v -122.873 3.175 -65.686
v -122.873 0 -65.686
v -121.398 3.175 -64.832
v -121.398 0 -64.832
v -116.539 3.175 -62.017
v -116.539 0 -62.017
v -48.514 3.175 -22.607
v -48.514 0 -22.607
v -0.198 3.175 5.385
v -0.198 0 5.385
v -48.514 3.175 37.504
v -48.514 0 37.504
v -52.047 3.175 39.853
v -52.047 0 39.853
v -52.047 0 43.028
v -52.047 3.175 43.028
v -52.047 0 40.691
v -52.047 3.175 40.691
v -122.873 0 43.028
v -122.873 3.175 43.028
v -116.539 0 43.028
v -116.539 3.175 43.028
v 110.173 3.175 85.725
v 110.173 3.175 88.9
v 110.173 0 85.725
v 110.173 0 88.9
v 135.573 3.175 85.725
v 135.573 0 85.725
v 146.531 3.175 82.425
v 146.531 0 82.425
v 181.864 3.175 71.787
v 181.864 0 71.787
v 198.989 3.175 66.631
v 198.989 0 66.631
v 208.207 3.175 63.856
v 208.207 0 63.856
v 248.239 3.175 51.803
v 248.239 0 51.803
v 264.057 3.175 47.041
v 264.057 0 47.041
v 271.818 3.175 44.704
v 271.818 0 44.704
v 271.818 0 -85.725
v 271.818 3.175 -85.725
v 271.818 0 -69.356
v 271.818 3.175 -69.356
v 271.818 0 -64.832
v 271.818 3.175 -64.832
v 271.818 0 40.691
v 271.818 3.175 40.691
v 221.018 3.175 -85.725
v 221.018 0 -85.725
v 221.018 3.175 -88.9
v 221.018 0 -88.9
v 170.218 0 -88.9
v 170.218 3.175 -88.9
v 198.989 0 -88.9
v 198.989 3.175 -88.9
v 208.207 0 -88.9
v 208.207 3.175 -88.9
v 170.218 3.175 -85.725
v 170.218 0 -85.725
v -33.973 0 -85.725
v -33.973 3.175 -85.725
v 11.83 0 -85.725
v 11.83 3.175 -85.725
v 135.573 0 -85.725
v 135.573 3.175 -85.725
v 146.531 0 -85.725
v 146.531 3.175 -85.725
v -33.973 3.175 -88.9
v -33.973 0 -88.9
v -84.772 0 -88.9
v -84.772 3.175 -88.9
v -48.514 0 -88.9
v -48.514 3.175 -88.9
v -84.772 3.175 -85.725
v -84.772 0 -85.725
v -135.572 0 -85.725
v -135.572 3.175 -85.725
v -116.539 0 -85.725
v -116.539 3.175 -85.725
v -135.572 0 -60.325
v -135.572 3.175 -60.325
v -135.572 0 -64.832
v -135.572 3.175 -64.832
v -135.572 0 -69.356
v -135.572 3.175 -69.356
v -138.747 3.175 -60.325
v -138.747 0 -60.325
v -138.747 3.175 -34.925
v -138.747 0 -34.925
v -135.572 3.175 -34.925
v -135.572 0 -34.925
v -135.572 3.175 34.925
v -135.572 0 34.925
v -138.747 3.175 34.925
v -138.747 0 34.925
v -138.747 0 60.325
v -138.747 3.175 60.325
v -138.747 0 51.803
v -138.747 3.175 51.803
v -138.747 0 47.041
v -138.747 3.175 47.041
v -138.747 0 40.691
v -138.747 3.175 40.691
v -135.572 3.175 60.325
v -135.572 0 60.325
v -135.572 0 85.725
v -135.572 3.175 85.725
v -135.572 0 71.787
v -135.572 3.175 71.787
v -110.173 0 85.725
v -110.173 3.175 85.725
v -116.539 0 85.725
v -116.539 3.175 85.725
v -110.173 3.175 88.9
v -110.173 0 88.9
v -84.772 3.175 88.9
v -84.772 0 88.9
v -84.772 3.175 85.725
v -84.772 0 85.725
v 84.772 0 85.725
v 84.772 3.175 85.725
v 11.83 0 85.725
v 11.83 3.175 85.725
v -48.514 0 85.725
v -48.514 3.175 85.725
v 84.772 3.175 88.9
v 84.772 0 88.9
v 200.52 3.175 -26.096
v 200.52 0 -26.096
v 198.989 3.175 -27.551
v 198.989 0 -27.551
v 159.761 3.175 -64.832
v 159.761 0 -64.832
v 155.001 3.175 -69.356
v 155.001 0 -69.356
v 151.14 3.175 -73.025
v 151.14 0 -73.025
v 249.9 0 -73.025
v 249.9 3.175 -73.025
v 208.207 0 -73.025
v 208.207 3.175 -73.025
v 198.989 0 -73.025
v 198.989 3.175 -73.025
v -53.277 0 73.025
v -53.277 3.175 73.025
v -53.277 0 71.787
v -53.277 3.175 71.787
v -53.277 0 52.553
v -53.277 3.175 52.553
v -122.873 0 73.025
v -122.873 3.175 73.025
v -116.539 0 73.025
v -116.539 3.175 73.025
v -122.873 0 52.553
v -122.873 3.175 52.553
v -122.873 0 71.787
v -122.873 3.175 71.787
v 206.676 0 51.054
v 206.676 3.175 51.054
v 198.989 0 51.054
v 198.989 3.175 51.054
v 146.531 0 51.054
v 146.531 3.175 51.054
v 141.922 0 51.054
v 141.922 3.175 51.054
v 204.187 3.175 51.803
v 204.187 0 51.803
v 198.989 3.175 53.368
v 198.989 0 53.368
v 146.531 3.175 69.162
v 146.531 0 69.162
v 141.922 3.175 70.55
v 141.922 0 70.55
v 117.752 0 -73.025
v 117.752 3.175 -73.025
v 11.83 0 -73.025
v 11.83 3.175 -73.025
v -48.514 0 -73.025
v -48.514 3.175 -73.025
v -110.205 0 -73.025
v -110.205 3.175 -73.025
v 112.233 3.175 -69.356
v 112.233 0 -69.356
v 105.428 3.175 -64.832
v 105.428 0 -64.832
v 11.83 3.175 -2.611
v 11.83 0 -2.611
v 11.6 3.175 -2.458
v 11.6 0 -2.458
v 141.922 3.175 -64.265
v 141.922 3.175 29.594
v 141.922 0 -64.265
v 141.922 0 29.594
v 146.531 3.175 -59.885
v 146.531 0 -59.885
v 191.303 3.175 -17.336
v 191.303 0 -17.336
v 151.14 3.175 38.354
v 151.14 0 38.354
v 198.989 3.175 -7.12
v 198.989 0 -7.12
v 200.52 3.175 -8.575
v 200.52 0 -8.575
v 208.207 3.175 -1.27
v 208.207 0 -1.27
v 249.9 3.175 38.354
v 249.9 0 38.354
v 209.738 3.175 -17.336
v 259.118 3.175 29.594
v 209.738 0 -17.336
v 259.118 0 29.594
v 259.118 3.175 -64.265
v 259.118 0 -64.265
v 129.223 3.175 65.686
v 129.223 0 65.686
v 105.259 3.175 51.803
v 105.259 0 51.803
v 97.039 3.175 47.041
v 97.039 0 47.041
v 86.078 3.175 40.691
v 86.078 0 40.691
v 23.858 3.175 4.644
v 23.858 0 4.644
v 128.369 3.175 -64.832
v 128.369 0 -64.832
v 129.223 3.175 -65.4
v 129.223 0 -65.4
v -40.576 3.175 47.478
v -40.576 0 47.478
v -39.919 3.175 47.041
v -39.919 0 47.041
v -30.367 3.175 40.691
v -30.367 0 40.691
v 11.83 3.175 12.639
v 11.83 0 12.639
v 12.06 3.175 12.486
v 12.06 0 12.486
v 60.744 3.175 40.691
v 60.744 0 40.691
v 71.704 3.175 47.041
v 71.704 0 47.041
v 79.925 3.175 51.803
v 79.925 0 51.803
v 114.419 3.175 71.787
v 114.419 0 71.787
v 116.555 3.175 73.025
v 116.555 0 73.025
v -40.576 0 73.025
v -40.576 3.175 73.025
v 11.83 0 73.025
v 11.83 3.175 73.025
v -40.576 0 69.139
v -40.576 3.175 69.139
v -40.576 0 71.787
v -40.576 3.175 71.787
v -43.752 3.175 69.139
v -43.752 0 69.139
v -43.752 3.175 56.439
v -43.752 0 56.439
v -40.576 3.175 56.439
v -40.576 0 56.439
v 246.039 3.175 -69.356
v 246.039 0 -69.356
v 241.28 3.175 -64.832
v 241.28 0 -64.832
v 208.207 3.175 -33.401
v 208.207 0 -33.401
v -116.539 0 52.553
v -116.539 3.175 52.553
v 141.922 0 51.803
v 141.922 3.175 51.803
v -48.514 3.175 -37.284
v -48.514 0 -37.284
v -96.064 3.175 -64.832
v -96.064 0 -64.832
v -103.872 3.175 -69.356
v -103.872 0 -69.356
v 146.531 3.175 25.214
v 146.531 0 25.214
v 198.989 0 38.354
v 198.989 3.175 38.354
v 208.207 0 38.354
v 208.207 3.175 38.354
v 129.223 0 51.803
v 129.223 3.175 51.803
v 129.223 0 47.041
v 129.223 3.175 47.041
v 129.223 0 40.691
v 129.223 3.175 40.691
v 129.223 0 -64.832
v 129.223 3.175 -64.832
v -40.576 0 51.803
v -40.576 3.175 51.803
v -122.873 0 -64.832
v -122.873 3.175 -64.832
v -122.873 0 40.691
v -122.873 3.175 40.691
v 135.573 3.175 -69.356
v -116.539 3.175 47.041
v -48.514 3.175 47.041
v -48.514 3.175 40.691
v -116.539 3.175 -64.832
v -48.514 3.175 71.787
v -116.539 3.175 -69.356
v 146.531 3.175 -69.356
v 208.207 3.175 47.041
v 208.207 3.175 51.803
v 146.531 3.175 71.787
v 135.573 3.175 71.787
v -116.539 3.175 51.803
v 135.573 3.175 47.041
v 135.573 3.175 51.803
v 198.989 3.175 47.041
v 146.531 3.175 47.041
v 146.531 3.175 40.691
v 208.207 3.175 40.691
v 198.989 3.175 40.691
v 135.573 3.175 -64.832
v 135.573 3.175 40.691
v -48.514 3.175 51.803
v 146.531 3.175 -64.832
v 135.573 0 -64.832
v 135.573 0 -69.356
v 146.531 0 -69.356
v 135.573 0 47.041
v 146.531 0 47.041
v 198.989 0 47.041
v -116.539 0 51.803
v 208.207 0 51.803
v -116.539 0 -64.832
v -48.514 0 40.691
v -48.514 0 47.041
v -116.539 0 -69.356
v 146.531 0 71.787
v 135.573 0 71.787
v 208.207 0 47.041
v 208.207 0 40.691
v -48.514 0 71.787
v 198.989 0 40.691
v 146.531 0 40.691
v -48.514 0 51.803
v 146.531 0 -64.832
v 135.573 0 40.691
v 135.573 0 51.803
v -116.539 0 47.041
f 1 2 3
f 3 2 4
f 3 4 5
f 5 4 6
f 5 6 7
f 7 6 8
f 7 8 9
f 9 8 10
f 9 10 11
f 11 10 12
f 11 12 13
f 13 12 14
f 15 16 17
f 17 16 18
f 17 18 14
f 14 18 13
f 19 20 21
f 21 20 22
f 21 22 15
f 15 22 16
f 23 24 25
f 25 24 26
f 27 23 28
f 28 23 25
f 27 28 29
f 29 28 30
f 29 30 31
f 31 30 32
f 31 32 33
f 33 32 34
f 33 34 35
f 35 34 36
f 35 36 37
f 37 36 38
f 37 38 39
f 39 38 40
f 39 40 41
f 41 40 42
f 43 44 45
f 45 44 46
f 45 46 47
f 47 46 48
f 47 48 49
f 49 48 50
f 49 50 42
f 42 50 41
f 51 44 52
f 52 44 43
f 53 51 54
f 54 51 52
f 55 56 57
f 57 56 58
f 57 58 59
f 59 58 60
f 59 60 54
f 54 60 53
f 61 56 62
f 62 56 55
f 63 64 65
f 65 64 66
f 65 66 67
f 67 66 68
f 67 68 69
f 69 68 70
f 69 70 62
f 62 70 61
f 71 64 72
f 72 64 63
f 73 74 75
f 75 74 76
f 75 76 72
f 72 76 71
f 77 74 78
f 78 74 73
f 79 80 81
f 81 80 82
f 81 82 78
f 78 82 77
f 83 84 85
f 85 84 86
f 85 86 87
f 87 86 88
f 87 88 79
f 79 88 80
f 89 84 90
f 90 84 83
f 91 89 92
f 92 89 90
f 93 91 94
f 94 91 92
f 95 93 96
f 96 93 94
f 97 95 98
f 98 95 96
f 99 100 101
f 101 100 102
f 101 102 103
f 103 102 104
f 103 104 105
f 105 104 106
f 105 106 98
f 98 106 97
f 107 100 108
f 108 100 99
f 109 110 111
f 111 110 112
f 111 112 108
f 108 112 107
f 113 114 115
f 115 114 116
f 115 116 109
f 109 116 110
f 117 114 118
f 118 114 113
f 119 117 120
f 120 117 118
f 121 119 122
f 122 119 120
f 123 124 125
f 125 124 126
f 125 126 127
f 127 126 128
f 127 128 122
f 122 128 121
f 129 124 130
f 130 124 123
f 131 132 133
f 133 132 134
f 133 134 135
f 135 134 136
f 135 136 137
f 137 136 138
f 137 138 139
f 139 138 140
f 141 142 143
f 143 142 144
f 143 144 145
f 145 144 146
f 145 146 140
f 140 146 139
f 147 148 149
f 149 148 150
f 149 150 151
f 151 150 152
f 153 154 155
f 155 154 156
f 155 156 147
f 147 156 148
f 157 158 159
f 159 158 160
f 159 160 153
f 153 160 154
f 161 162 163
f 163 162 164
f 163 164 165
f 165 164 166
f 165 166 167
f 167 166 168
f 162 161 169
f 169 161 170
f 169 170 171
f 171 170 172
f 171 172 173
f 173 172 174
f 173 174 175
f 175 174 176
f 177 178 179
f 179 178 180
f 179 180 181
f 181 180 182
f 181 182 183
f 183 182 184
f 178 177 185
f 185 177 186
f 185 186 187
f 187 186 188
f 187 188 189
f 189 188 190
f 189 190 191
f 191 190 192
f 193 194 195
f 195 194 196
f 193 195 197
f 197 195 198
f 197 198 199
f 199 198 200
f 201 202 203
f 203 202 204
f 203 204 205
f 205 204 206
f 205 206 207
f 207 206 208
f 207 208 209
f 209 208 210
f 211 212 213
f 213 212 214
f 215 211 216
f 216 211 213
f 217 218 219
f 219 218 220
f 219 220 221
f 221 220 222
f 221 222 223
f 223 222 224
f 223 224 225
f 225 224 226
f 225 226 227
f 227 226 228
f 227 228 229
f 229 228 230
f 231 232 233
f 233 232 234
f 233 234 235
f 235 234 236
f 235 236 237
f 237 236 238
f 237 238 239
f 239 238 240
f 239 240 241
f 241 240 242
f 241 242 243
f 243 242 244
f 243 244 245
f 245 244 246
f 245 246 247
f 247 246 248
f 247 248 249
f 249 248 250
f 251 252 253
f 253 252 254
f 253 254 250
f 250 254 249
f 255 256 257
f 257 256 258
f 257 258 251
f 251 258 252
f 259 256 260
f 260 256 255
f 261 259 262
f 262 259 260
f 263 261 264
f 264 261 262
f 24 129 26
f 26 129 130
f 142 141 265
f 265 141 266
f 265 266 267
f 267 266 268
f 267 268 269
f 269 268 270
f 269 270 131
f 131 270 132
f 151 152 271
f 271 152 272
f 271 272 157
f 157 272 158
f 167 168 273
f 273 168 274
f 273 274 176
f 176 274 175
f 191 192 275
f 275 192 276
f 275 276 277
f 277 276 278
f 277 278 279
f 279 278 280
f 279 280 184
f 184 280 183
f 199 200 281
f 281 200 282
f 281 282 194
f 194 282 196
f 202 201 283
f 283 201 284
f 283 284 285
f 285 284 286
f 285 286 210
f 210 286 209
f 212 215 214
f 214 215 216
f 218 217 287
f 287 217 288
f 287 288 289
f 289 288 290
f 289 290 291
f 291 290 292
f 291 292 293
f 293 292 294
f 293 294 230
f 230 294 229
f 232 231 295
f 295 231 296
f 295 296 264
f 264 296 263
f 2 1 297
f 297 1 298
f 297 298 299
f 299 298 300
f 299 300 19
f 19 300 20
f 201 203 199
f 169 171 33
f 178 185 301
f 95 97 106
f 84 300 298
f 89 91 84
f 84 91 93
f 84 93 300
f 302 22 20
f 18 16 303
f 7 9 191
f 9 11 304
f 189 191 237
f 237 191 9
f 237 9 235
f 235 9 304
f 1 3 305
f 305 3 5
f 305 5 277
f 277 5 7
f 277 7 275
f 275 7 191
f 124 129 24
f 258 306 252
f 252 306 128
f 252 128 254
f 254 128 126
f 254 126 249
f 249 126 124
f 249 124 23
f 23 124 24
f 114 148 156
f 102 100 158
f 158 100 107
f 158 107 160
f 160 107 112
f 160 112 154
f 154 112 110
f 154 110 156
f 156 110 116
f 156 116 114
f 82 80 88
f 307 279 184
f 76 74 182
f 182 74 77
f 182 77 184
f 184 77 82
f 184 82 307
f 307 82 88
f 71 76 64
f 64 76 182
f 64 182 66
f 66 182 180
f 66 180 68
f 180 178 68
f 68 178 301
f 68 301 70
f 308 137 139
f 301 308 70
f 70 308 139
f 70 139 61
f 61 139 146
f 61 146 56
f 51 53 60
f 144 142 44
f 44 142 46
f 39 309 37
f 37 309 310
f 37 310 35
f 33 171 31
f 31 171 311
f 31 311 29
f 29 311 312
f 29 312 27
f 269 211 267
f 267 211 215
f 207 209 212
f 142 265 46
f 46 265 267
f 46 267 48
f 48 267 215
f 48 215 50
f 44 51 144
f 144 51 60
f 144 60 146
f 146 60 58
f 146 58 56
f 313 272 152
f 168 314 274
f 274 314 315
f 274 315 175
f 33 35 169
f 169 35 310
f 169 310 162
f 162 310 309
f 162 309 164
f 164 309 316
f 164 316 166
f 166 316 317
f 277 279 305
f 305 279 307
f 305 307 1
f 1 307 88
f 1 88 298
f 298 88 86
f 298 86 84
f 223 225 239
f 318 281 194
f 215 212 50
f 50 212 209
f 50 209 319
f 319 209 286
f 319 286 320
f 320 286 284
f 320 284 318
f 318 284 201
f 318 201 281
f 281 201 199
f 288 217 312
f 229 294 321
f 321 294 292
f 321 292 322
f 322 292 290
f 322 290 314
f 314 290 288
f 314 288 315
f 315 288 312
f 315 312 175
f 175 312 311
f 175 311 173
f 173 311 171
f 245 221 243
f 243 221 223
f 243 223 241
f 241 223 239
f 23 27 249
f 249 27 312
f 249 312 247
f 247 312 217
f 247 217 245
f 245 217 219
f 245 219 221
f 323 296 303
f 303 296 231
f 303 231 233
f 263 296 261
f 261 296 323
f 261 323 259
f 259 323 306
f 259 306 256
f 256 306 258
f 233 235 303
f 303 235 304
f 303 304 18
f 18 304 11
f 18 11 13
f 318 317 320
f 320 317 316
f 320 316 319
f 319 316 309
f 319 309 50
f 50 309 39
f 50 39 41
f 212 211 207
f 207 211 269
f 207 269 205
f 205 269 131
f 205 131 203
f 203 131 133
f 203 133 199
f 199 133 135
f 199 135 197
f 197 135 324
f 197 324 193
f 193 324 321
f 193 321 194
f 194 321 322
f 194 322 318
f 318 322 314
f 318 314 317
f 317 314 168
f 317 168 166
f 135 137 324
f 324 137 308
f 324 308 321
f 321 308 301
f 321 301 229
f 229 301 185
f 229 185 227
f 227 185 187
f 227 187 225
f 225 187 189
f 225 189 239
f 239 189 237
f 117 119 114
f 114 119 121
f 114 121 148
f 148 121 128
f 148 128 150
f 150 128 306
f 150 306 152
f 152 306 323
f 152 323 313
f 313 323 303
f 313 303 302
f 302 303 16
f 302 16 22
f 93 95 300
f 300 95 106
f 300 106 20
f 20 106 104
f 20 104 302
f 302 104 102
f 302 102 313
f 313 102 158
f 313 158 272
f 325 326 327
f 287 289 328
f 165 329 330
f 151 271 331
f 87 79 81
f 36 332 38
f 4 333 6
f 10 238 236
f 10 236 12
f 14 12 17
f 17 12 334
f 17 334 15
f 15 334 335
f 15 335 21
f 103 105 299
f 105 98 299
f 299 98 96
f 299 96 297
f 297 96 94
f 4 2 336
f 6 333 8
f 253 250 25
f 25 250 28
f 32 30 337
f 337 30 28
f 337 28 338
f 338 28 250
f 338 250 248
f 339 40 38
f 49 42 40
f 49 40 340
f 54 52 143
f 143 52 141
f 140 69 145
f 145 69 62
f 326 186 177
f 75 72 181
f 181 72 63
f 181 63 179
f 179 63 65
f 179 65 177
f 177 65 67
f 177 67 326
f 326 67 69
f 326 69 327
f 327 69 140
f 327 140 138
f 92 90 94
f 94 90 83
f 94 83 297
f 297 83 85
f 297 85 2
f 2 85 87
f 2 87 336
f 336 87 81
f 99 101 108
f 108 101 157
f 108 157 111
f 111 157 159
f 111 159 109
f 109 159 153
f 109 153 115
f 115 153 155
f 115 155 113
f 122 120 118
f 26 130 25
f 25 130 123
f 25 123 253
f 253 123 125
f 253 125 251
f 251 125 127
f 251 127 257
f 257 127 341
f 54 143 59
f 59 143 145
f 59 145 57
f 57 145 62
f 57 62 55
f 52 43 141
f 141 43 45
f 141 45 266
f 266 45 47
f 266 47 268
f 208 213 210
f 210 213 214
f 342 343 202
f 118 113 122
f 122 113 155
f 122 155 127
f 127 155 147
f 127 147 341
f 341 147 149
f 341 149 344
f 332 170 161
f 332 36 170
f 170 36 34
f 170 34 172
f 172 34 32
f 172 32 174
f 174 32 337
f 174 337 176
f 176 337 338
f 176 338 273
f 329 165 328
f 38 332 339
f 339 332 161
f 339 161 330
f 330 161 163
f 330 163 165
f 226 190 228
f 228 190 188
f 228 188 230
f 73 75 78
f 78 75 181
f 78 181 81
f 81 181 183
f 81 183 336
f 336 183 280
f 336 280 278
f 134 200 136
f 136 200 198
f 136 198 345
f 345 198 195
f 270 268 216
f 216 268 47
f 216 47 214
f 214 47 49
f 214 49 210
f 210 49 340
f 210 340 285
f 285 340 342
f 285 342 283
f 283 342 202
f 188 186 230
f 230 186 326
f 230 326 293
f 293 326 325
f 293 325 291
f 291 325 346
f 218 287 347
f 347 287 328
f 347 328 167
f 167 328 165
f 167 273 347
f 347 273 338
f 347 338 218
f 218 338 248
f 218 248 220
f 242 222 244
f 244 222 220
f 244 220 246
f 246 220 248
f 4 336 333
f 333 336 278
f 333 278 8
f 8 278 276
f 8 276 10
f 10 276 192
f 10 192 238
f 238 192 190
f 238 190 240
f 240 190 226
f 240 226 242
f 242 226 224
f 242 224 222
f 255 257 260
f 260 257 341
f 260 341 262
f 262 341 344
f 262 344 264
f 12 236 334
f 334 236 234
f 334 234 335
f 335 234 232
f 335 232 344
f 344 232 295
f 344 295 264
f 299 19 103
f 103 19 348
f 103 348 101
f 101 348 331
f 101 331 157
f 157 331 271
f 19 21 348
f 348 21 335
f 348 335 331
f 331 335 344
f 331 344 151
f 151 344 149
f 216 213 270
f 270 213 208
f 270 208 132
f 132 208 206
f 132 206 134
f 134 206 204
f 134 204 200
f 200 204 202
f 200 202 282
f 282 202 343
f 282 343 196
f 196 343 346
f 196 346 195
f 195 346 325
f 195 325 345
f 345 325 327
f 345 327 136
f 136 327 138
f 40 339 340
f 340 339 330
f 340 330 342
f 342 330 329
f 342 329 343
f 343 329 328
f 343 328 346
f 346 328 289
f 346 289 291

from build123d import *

# Parameters (mm, degrees)
SKETCH1_W           = 69.596
SKETCH1_H           = 20.4724
BOSS_EXTRUDE1_DEPTH = 3.175


with BuildPart() as part:
    # Sketch1 → Boss-Extrude1 (new body)
    with BuildSketch(Plane(origin=(0, 0, 0), x_dir=(1, 0, 0), z_dir=(0, 1, 0))):
        Polygon((135.5725, -85.725), (271.8181, -44.704), (271.8181, 85.725), (221.0181, 85.725), (221.0181, 88.9), (170.2181, 88.9), (170.2181, 85.725), (135.5725, 85.725), (-33.9725, 85.725), (-33.9725, 88.9), (-84.7725, 88.9), (-84.7725, 85.725), (-135.5725, 85.725), (-135.5725, 60.325), (-138.7475, 60.325), (-138.7475, 34.925), (-135.5725, 34.925), (-135.5725, -34.925), (-138.7475, -34.925), (-138.7475, -60.325), (-135.5725, -60.325), (-135.5725, -85.725), (-110.1725, -85.725), (-110.1725, -88.9), (-84.7725, -88.9), (-84.7725, -85.725), (84.7725, -85.725), (84.7725, -88.9), (110.1725, -88.9), (110.1725, -85.725), align=None)
        Polygon((191.30257064, 17.3355), (141.9225, -29.593760892), (141.9225, 64.264760892), align=None, mode=Mode.SUBTRACT)
        Polygon((209.73802936, 17.3355), (259.1181, -29.593760892), (259.1181, 64.264760892), align=None, mode=Mode.SUBTRACT)
        Polygon((141.9225, -51.054), (141.9225, -70.549992123), (206.675751855, -51.054), align=None, mode=Mode.SUBTRACT)
        Polygon((-40.5765, -56.4388), (-40.5765, -47.477682668), (12.060198108, -12.486286049), (116.555282623, -73.025), (-40.5765, -73.025), (-40.5765, -69.1388), (-43.7515, -69.1388), (-43.7515, -56.4388), align=None, mode=Mode.SUBTRACT)
        Polygon((-110.205282623, 73.025), (117.75227551, 73.025), (11.599803294, 2.457821761), align=None, mode=Mode.SUBTRACT)
        Polygon((-122.8725, 65.686309832), (-122.8725, -43.0276), (-52.04672449, -43.0276), (-52.04672449, -39.8526), (-0.197624716, -5.384776605), align=None, mode=Mode.SUBTRACT)
        with Locations((-88.0745, -62.7888)):
            Rectangle(SKETCH1_W, SKETCH1_H, mode=Mode.SUBTRACT)
        Polygon((129.2225, 65.399917332), (129.2225, -65.686309832), (23.857626118, -4.643687684), align=None, mode=Mode.SUBTRACT)
        Polygon((151.14022936, 73.025), (249.90037064, 73.025), (200.5203, 26.095739108), align=None, mode=Mode.SUBTRACT)
        Polygon((151.14022936, -38.354), (249.90037064, -38.354), (200.5203, 8.575260892), align=None, mode=Mode.SUBTRACT)
    extrude(amount=BOSS_EXTRUDE1_DEPTH)


solid = part.part
